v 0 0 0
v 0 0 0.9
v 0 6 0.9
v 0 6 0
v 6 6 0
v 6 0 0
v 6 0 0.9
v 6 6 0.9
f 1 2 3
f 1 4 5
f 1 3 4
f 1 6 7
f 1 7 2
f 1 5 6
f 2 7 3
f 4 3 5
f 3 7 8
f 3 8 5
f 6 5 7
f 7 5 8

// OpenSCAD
/* Warning, this is a very basic generator with a lot of approximation 
input data : [VQFN, 4WB, 6x6x0.9mm, 36, , A, C04-21561A]
generated by com.zoubworld.electronics.cad.model3d.Basic
Date : Sun Feb 15 10:50:49 CET 2026
*/

//body
color("black")
translate([0,0,0])
cube([6.0,6.0,0.9], center=false);
